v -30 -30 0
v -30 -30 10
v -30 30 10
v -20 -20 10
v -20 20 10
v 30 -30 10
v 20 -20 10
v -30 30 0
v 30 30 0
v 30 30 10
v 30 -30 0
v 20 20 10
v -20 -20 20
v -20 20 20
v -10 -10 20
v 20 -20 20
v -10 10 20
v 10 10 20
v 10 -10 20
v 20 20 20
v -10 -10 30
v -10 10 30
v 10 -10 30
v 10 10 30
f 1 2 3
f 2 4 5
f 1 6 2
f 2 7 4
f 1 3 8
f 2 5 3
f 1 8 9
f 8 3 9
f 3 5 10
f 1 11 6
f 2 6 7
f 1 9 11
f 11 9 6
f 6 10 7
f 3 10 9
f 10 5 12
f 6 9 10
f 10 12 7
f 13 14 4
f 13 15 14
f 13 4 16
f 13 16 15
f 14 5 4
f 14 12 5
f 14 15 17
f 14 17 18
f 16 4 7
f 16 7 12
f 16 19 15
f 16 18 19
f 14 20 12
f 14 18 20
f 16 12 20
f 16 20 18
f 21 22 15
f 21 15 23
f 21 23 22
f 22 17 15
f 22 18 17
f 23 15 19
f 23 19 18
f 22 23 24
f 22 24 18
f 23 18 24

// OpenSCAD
// 3段の階段状ピラミッド

module step_pyramid() {
    // 1段目: 60mm x 60mm x 10mm
    translate([-30, -30, 0])
        cube([60, 60, 10]);

    // 2段目: 40mm x 40mm x 10mm
    translate([-20, -20, 10])
        cube([40, 40, 10]);

    // 3段目: 20mm x 20mm x 10mm
    translate([-10, -10, 20])
        cube([20, 20, 10]);
}

step_pyramid();
